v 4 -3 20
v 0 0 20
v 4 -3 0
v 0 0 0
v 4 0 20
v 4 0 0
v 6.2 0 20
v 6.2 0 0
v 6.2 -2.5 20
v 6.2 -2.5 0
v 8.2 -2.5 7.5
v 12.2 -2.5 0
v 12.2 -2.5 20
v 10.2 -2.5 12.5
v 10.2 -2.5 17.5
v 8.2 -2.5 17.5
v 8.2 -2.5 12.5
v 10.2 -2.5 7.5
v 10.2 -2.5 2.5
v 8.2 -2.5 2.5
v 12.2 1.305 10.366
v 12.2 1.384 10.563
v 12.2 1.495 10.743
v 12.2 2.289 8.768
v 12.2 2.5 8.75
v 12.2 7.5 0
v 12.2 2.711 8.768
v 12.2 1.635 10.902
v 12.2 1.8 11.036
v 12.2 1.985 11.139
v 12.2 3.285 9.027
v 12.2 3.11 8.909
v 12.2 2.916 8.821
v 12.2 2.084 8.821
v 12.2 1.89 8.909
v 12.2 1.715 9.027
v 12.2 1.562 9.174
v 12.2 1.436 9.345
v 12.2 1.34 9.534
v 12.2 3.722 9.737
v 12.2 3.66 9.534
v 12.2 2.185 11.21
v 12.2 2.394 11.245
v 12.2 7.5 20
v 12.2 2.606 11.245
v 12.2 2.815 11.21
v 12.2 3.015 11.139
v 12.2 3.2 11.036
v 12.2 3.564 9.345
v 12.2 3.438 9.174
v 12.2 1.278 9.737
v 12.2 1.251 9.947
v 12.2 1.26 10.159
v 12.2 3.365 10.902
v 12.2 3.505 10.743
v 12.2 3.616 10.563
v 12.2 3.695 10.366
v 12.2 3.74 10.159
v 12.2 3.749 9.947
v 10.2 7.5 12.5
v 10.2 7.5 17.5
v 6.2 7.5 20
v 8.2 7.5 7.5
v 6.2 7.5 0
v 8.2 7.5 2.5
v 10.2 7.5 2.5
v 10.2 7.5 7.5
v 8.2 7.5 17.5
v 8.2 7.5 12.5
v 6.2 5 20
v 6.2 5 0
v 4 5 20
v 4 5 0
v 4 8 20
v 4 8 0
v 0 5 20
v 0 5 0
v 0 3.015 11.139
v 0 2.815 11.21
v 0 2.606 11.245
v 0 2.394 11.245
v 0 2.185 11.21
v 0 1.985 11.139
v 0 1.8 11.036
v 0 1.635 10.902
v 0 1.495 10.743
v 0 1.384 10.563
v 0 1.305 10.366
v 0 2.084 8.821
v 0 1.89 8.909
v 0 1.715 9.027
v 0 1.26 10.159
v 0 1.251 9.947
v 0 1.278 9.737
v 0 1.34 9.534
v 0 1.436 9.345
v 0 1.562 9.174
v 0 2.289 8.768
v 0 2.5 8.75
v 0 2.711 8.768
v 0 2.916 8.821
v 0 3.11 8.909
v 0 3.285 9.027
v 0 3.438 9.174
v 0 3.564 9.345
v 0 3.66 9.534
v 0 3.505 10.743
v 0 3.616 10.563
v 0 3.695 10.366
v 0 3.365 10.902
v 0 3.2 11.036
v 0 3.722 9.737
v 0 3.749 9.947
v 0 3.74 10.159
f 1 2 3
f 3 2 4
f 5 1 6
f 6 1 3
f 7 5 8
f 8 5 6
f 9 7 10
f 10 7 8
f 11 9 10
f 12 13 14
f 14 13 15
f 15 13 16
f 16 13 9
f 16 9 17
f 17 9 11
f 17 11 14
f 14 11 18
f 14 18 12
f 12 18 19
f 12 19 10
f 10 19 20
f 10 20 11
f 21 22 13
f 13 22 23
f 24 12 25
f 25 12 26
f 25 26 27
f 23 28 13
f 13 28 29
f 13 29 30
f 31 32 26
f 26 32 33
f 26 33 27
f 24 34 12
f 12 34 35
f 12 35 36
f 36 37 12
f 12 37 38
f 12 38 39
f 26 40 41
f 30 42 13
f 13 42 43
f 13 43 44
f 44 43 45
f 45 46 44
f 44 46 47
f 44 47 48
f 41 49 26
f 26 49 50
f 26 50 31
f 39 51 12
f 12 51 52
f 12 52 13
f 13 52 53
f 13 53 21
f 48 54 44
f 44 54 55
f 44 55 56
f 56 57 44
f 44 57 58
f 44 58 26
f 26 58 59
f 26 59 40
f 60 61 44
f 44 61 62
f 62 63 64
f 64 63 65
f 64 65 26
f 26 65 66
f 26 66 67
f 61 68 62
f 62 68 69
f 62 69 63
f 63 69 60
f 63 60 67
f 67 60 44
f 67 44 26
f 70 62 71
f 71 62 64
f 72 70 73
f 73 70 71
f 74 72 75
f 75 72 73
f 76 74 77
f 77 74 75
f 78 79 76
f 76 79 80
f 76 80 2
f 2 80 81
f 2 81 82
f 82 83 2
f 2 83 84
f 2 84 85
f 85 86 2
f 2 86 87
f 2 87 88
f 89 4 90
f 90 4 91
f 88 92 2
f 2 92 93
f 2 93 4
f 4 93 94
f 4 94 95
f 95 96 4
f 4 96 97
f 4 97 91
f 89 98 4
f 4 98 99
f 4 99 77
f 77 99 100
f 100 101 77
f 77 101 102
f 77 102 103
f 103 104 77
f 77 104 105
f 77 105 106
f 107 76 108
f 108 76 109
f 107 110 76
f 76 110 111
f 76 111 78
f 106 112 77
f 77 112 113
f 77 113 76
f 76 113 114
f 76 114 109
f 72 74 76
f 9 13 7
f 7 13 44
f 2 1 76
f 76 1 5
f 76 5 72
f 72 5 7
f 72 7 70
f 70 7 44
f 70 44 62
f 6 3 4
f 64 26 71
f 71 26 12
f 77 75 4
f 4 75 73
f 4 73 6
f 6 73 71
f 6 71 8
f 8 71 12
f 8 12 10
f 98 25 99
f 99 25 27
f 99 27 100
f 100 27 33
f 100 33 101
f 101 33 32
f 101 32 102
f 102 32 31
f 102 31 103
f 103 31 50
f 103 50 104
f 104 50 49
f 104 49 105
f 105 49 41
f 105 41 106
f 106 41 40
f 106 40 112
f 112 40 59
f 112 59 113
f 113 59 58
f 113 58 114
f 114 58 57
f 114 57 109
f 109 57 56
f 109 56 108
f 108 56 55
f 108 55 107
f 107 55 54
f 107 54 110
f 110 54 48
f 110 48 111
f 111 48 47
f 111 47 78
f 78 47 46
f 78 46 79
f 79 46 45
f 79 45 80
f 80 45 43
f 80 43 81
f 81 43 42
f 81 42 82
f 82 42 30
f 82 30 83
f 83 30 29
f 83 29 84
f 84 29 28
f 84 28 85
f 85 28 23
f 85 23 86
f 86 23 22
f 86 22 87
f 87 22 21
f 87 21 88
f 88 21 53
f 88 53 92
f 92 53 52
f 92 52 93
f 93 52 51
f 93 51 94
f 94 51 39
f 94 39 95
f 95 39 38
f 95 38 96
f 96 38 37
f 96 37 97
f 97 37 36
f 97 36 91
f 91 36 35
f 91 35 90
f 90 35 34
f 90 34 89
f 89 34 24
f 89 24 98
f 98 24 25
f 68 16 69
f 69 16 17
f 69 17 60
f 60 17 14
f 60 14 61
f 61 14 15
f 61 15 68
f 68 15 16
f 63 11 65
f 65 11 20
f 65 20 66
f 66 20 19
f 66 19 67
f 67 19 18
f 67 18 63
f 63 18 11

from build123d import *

# Parameters (mm, degrees)
BOSS_EXTRU_1_DEPTH      = 20
ESQUISSE1_R             = 1.25
ENL_V_MAT_EXTRU_1_DEPTH = 13.2
ESQUISSE2_W             = 2
ESQUISSE2_H             = 5
ENL_V_MAT_EXTRU_2_DEPTH = 11.5


with BuildPart() as part:
    # ProfileRainureEsquisse → Boss.-Extru.1 (new body)
    with BuildSketch(Plane.XY):
        Polygon((0, 0), (0, 5), (4, 8), (4, 5), (6.2, 5), (6.2, 7.5), (12.2, 7.5), (12.2, -2.5), (6.2, -2.5), (6.2, 0), (4, 0), (4, -3), align=None)
    extrude(amount=BOSS_EXTRU_1_DEPTH)

    # Esquisse1 → Enlèv. mat.-Extru.1 (cut, through all)
    with BuildSketch(Plane(origin=(12.2, 0, 0), x_dir=(0, 0, -1), z_dir=(1, 0, 0))):
        with Locations((-10, 2.5)):
            Circle(ESQUISSE1_R)
    extrude(amount=-ENL_V_MAT_EXTRU_1_DEPTH, mode=Mode.SUBTRACT)

    # Esquisse2 → Enlèv. mat.-Extru.2 (cut, through all)
    with BuildSketch(Plane(origin=(0, 7.5, 0), x_dir=(1, 0, 0), z_dir=(0, 1, 0))):
        with Locations((9.2, -15)):
            Rectangle(ESQUISSE2_W, ESQUISSE2_H)
        with Locations((9.2, -5)):
            Rectangle(ESQUISSE2_W, ESQUISSE2_H)
    extrude(amount=-ENL_V_MAT_EXTRU_2_DEPTH, mode=Mode.SUBTRACT)


solid = part.part
